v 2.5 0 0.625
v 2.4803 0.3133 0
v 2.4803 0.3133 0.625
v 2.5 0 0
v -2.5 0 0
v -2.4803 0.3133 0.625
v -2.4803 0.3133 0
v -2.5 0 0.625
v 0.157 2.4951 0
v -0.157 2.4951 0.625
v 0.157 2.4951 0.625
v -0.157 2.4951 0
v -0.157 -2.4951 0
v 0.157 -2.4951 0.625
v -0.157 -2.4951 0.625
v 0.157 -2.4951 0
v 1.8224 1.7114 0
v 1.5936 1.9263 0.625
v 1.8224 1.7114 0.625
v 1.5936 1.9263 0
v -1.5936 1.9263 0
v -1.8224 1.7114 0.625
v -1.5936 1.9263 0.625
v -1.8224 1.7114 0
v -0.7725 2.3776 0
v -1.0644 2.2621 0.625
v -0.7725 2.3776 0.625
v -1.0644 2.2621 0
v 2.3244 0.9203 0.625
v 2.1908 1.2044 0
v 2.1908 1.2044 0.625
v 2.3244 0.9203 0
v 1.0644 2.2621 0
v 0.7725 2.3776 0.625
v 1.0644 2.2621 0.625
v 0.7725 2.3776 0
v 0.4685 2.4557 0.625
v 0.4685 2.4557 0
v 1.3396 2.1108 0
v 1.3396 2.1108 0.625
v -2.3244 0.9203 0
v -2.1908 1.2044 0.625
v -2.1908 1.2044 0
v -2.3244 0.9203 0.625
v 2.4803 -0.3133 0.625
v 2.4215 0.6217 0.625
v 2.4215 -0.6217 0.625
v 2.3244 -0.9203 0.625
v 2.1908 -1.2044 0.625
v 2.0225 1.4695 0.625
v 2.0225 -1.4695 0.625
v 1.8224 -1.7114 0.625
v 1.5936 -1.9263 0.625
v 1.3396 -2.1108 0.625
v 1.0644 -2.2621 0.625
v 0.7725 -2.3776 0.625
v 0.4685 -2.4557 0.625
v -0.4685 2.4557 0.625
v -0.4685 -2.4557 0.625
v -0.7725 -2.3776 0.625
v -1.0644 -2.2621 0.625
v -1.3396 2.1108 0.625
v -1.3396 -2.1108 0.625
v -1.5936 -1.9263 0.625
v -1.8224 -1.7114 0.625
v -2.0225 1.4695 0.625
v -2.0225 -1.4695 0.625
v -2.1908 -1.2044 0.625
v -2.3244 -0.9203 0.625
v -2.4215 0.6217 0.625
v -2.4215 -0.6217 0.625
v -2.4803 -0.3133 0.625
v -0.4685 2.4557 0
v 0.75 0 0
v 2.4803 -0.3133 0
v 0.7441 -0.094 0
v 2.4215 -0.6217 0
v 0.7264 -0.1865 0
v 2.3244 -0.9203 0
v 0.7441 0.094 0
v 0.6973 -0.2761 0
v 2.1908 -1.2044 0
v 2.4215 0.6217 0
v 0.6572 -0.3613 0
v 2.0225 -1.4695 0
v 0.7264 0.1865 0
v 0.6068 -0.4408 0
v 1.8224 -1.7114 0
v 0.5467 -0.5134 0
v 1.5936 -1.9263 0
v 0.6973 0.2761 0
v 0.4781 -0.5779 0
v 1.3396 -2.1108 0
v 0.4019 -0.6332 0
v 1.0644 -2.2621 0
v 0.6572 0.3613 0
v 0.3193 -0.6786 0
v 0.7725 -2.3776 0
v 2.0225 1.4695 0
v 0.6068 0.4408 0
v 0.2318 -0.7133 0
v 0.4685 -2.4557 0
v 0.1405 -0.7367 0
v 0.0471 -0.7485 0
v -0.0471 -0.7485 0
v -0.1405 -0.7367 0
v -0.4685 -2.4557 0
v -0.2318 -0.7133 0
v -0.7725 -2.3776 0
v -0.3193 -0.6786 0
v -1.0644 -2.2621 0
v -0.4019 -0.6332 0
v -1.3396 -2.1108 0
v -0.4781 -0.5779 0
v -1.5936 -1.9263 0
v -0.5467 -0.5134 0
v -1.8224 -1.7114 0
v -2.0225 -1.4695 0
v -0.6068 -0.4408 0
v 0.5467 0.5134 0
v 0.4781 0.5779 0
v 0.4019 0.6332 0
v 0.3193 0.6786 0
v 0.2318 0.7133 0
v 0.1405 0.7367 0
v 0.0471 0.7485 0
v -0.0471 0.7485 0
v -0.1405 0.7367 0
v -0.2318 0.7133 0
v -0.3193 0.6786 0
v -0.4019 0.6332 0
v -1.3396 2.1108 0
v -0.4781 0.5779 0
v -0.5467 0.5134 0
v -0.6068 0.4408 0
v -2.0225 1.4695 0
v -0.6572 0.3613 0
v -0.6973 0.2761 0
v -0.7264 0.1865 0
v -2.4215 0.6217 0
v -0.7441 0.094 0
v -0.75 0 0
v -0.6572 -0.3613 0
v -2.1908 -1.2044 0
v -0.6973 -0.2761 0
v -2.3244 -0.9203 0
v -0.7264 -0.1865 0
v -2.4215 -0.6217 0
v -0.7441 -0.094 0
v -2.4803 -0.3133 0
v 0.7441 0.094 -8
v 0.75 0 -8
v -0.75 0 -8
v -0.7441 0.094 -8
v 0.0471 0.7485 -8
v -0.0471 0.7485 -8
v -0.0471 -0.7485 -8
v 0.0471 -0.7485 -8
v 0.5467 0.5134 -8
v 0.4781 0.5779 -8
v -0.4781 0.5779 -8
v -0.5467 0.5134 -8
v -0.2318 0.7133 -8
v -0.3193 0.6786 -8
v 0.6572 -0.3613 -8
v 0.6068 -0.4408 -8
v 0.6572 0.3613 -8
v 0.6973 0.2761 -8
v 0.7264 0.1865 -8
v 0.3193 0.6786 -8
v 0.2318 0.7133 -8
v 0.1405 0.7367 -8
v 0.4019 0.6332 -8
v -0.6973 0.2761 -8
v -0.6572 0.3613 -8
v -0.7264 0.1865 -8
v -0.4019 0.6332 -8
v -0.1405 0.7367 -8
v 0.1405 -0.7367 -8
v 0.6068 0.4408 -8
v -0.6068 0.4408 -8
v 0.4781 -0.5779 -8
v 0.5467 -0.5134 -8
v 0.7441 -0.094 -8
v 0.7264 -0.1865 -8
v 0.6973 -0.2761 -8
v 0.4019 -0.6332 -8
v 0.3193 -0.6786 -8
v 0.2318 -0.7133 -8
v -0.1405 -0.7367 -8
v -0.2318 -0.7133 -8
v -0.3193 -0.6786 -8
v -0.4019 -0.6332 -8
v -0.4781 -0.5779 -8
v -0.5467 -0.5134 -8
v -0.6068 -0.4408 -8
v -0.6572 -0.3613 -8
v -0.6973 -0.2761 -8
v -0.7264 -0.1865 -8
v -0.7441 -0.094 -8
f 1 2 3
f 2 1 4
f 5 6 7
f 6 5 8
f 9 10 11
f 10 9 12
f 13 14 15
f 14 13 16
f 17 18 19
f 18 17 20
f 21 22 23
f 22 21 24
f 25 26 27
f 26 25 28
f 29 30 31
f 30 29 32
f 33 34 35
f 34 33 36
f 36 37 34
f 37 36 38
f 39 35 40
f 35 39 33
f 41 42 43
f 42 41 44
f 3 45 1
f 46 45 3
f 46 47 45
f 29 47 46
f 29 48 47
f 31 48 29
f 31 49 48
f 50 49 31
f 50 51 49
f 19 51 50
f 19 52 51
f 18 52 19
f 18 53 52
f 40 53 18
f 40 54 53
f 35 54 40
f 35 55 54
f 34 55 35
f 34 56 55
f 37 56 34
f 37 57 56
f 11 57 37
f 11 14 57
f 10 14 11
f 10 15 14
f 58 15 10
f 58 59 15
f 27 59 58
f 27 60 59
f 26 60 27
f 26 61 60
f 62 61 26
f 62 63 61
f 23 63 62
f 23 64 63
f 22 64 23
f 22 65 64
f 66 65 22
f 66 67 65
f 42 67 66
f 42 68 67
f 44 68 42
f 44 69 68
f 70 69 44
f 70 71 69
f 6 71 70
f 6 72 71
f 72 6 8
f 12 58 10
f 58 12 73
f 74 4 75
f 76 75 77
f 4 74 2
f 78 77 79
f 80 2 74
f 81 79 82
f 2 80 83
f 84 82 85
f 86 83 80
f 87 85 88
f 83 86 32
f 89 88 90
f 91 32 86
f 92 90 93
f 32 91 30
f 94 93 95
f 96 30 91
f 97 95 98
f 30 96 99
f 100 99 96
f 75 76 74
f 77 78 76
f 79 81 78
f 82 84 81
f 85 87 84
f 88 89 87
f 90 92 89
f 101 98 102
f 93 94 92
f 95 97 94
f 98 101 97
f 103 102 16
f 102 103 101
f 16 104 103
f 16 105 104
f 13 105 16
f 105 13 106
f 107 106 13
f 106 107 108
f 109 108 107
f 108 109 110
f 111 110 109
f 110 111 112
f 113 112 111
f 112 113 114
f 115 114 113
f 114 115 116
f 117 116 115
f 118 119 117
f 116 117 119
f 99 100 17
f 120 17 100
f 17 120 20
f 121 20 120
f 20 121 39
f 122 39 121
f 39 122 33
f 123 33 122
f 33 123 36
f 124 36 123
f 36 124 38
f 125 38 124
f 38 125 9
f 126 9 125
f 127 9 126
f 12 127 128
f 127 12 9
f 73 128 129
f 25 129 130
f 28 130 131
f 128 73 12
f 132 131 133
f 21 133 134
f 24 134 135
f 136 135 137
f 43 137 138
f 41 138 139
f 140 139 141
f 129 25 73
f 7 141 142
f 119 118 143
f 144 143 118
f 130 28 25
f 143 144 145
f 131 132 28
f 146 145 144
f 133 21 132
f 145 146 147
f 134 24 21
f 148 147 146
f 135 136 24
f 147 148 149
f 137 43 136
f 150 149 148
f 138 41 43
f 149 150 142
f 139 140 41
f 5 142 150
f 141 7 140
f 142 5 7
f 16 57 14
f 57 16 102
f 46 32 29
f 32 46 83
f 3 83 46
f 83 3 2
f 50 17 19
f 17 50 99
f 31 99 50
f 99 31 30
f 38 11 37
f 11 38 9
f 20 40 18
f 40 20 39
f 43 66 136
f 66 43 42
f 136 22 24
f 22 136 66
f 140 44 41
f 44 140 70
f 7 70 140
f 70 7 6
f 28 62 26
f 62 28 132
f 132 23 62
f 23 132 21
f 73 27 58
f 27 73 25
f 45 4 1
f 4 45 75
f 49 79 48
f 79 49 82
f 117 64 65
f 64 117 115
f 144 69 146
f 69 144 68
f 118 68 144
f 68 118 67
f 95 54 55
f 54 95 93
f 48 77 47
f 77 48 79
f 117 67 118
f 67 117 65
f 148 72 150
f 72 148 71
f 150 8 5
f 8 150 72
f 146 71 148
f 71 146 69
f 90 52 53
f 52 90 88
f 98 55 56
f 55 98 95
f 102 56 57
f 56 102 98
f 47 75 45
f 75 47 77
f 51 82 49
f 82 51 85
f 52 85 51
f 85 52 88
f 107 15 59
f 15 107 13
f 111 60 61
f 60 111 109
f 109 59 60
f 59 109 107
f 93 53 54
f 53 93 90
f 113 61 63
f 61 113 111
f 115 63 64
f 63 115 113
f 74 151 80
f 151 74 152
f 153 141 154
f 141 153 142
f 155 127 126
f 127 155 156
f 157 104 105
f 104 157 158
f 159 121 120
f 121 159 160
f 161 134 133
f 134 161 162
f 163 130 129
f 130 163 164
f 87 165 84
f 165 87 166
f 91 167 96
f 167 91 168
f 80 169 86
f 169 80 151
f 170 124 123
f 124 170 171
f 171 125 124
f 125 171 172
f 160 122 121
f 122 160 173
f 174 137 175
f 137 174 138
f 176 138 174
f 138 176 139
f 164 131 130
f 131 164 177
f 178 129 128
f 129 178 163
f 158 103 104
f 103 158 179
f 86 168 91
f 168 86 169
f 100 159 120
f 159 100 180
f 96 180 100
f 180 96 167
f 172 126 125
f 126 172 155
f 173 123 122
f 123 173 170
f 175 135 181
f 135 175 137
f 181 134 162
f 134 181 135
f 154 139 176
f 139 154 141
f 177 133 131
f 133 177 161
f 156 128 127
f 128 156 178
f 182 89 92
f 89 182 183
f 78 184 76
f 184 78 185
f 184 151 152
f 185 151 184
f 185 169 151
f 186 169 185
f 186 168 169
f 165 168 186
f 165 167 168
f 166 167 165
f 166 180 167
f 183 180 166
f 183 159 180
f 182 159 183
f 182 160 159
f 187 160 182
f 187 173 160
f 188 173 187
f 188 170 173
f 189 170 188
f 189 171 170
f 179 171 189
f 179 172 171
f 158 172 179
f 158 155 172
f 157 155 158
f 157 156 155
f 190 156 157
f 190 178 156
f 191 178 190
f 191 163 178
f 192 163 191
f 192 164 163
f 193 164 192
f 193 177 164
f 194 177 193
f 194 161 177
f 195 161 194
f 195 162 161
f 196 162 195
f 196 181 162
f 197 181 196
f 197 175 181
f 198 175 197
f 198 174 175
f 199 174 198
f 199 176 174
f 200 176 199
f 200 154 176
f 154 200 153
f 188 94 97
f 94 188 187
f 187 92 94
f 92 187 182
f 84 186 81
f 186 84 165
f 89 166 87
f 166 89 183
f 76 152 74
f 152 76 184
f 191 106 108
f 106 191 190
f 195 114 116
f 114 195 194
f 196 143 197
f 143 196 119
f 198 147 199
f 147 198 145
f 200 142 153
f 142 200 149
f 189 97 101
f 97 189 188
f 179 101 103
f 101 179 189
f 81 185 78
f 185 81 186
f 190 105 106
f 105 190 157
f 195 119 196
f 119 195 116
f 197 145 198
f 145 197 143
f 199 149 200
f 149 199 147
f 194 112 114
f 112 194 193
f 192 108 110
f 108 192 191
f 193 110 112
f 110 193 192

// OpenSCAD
$fn = 50;


difference() {
	union() {
		translate(v = [0, 0, 0]) {
			rotate(a = [0, 0, 0]) {
				cylinder(h = 0.6250000000, r = 2.5000000000);
			}
		}
		translate(v = [0, 0, -8]) {
			rotate(a = [0, 0, 0]) {
				cylinder(h = 8, r = 0.7500000000);
			}
		}
	}
	union();
}
